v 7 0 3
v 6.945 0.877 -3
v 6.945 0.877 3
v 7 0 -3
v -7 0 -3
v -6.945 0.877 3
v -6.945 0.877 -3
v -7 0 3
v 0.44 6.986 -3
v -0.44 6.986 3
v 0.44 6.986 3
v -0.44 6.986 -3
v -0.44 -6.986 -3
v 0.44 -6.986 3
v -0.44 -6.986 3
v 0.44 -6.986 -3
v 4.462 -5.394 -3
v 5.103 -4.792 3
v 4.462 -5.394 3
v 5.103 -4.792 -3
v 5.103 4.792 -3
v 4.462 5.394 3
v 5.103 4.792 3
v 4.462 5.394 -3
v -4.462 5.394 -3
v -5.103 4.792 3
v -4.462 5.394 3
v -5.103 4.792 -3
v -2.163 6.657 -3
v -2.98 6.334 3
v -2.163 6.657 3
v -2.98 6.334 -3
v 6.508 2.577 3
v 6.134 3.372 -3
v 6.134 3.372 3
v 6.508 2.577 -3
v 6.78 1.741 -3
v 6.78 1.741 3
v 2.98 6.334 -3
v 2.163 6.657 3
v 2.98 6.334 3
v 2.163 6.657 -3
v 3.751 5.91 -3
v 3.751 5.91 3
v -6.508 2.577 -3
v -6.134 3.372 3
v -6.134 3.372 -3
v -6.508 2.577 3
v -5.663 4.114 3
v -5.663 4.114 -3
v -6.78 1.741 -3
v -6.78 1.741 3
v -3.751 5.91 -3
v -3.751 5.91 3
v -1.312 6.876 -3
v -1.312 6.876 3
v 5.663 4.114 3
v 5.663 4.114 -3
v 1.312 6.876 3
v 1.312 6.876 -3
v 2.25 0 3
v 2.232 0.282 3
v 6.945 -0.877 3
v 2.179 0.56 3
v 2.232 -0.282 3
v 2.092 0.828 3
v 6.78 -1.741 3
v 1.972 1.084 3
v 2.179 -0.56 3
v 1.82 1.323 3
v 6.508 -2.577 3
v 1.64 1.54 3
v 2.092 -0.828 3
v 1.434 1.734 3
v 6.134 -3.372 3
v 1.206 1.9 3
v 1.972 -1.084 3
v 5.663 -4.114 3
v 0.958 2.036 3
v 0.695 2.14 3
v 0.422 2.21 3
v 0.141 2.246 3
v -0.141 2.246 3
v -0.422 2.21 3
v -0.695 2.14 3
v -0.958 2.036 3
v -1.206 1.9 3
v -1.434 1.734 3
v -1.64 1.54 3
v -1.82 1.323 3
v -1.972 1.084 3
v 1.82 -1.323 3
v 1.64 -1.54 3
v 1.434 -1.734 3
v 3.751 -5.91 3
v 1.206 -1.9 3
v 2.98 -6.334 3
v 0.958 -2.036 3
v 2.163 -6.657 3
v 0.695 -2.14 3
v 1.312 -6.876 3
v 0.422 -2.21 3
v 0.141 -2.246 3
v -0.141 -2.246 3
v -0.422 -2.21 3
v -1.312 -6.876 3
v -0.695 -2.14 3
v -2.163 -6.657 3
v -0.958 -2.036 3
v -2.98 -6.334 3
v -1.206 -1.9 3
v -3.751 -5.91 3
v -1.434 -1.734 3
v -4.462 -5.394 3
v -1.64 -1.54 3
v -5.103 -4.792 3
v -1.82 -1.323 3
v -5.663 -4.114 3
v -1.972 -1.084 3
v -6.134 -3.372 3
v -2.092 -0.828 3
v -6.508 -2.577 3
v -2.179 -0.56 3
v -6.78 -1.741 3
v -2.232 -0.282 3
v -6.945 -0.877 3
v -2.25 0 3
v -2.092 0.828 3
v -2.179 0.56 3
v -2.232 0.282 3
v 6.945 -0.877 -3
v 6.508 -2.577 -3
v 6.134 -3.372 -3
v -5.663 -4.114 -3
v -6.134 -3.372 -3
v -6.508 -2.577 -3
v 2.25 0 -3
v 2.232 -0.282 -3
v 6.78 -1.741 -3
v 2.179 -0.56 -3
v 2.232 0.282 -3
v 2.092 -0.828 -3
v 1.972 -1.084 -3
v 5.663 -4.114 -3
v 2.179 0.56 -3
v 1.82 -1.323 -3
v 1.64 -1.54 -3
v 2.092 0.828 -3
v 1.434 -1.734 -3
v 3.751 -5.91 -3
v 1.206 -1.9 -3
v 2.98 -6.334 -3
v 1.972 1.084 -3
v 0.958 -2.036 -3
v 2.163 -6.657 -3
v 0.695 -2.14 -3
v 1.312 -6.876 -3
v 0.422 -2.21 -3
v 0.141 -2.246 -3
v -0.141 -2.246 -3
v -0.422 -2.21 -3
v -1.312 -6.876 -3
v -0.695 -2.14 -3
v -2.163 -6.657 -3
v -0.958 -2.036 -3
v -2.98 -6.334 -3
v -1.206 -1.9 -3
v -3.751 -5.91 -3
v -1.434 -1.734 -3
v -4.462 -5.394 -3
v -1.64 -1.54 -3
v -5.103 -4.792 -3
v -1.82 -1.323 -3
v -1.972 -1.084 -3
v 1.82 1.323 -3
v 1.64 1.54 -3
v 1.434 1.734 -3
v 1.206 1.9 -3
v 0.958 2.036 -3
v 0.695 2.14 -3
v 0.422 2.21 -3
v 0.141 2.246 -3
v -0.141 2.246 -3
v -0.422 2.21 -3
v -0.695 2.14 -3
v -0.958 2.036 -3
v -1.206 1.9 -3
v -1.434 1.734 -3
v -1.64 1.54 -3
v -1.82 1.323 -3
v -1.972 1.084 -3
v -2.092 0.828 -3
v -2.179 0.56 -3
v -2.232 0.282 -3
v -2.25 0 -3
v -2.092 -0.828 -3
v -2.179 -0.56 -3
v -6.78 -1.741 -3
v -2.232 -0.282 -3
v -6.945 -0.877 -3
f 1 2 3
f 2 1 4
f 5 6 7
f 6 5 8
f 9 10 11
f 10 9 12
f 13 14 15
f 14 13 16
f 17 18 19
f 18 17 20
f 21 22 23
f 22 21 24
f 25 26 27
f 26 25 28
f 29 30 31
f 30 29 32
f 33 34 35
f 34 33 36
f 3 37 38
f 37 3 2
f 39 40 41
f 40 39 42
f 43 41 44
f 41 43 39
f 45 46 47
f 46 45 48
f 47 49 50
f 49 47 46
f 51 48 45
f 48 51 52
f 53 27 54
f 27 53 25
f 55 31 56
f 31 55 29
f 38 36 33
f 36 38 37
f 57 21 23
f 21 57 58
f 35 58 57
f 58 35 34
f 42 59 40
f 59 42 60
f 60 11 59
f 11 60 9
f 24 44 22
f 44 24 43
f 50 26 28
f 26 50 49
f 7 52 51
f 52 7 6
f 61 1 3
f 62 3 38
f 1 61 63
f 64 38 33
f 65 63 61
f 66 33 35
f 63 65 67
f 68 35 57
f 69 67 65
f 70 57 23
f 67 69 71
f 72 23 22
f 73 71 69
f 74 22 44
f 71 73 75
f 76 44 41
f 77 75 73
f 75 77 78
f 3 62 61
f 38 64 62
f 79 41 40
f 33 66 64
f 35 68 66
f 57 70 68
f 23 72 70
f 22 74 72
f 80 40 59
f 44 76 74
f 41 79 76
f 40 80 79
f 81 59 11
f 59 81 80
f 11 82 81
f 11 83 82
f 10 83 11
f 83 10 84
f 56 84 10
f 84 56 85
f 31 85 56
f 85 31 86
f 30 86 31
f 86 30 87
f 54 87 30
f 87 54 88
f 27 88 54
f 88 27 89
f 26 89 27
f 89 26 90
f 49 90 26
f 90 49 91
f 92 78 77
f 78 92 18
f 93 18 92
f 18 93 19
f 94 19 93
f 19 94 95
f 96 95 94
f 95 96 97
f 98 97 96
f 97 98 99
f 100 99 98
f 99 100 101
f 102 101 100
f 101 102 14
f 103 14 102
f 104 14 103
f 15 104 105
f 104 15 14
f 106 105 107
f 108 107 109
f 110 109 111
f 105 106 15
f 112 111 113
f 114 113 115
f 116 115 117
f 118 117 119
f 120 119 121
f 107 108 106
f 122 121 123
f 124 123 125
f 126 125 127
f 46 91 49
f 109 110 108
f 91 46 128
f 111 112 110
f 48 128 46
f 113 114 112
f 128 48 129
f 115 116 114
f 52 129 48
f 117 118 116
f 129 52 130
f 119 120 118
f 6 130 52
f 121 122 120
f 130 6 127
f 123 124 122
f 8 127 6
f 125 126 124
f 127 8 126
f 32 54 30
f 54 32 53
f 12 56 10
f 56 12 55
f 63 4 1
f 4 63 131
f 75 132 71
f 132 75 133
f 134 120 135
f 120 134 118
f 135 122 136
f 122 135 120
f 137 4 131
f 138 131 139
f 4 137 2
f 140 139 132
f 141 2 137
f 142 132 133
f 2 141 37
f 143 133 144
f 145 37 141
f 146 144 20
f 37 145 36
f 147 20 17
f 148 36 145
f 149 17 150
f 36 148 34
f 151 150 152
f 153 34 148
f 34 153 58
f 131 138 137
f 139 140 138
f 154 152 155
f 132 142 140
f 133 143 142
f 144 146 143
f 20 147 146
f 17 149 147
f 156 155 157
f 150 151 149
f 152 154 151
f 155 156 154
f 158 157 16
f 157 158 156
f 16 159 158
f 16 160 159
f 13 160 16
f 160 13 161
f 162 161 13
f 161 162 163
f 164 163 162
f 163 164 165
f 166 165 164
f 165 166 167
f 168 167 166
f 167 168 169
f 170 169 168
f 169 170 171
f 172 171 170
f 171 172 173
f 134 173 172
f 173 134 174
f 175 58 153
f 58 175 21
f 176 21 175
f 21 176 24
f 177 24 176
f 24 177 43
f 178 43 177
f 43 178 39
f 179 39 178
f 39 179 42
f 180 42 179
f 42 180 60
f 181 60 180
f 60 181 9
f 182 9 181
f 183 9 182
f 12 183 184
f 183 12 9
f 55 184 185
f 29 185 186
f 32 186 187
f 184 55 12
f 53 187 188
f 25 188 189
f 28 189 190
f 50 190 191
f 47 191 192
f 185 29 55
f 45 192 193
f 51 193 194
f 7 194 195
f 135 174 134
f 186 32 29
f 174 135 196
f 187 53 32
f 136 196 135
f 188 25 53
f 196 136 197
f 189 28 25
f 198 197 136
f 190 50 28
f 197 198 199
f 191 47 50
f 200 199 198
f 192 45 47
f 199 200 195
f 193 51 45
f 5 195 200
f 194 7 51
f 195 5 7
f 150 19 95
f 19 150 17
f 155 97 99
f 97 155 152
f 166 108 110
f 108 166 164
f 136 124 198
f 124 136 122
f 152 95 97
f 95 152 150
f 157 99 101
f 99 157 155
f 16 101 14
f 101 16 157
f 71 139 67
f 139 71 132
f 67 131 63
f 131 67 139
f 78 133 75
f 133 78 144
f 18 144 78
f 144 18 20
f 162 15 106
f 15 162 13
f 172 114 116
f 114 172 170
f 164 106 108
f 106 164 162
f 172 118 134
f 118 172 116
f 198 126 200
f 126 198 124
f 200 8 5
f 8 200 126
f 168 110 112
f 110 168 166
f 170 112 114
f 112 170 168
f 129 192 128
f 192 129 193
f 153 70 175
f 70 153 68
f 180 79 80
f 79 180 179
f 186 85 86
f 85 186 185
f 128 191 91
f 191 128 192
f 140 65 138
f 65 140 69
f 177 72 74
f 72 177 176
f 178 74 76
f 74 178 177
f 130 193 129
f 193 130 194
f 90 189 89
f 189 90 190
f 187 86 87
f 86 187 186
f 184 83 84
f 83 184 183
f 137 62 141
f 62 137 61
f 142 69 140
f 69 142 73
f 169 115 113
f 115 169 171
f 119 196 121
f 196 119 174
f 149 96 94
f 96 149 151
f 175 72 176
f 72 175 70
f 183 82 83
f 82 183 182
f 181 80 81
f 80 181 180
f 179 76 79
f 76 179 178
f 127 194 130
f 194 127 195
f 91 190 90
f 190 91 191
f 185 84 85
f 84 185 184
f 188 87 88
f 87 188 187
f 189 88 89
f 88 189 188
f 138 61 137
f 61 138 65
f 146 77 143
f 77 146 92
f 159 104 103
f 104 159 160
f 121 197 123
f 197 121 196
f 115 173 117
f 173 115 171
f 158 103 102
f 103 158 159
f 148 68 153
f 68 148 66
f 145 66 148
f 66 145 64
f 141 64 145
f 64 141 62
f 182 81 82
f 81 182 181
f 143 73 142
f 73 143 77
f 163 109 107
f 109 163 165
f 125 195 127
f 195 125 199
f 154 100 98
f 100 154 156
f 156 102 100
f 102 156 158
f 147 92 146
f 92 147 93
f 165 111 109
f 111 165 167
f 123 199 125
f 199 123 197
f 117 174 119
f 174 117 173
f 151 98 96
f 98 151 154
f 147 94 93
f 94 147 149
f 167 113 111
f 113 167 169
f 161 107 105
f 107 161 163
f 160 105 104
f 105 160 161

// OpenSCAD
$fn = 50;


difference() {
	union() {
		translate(v = [0, 0, -3.0000000000]) {
			cylinder(h = 6, r = 7.0000000000);
		}
	}
	union() {
		translate(v = [0, 0, -100.0000000000]) {
			cylinder(h = 200, r = 2.2500000000);
		}
	}
}
